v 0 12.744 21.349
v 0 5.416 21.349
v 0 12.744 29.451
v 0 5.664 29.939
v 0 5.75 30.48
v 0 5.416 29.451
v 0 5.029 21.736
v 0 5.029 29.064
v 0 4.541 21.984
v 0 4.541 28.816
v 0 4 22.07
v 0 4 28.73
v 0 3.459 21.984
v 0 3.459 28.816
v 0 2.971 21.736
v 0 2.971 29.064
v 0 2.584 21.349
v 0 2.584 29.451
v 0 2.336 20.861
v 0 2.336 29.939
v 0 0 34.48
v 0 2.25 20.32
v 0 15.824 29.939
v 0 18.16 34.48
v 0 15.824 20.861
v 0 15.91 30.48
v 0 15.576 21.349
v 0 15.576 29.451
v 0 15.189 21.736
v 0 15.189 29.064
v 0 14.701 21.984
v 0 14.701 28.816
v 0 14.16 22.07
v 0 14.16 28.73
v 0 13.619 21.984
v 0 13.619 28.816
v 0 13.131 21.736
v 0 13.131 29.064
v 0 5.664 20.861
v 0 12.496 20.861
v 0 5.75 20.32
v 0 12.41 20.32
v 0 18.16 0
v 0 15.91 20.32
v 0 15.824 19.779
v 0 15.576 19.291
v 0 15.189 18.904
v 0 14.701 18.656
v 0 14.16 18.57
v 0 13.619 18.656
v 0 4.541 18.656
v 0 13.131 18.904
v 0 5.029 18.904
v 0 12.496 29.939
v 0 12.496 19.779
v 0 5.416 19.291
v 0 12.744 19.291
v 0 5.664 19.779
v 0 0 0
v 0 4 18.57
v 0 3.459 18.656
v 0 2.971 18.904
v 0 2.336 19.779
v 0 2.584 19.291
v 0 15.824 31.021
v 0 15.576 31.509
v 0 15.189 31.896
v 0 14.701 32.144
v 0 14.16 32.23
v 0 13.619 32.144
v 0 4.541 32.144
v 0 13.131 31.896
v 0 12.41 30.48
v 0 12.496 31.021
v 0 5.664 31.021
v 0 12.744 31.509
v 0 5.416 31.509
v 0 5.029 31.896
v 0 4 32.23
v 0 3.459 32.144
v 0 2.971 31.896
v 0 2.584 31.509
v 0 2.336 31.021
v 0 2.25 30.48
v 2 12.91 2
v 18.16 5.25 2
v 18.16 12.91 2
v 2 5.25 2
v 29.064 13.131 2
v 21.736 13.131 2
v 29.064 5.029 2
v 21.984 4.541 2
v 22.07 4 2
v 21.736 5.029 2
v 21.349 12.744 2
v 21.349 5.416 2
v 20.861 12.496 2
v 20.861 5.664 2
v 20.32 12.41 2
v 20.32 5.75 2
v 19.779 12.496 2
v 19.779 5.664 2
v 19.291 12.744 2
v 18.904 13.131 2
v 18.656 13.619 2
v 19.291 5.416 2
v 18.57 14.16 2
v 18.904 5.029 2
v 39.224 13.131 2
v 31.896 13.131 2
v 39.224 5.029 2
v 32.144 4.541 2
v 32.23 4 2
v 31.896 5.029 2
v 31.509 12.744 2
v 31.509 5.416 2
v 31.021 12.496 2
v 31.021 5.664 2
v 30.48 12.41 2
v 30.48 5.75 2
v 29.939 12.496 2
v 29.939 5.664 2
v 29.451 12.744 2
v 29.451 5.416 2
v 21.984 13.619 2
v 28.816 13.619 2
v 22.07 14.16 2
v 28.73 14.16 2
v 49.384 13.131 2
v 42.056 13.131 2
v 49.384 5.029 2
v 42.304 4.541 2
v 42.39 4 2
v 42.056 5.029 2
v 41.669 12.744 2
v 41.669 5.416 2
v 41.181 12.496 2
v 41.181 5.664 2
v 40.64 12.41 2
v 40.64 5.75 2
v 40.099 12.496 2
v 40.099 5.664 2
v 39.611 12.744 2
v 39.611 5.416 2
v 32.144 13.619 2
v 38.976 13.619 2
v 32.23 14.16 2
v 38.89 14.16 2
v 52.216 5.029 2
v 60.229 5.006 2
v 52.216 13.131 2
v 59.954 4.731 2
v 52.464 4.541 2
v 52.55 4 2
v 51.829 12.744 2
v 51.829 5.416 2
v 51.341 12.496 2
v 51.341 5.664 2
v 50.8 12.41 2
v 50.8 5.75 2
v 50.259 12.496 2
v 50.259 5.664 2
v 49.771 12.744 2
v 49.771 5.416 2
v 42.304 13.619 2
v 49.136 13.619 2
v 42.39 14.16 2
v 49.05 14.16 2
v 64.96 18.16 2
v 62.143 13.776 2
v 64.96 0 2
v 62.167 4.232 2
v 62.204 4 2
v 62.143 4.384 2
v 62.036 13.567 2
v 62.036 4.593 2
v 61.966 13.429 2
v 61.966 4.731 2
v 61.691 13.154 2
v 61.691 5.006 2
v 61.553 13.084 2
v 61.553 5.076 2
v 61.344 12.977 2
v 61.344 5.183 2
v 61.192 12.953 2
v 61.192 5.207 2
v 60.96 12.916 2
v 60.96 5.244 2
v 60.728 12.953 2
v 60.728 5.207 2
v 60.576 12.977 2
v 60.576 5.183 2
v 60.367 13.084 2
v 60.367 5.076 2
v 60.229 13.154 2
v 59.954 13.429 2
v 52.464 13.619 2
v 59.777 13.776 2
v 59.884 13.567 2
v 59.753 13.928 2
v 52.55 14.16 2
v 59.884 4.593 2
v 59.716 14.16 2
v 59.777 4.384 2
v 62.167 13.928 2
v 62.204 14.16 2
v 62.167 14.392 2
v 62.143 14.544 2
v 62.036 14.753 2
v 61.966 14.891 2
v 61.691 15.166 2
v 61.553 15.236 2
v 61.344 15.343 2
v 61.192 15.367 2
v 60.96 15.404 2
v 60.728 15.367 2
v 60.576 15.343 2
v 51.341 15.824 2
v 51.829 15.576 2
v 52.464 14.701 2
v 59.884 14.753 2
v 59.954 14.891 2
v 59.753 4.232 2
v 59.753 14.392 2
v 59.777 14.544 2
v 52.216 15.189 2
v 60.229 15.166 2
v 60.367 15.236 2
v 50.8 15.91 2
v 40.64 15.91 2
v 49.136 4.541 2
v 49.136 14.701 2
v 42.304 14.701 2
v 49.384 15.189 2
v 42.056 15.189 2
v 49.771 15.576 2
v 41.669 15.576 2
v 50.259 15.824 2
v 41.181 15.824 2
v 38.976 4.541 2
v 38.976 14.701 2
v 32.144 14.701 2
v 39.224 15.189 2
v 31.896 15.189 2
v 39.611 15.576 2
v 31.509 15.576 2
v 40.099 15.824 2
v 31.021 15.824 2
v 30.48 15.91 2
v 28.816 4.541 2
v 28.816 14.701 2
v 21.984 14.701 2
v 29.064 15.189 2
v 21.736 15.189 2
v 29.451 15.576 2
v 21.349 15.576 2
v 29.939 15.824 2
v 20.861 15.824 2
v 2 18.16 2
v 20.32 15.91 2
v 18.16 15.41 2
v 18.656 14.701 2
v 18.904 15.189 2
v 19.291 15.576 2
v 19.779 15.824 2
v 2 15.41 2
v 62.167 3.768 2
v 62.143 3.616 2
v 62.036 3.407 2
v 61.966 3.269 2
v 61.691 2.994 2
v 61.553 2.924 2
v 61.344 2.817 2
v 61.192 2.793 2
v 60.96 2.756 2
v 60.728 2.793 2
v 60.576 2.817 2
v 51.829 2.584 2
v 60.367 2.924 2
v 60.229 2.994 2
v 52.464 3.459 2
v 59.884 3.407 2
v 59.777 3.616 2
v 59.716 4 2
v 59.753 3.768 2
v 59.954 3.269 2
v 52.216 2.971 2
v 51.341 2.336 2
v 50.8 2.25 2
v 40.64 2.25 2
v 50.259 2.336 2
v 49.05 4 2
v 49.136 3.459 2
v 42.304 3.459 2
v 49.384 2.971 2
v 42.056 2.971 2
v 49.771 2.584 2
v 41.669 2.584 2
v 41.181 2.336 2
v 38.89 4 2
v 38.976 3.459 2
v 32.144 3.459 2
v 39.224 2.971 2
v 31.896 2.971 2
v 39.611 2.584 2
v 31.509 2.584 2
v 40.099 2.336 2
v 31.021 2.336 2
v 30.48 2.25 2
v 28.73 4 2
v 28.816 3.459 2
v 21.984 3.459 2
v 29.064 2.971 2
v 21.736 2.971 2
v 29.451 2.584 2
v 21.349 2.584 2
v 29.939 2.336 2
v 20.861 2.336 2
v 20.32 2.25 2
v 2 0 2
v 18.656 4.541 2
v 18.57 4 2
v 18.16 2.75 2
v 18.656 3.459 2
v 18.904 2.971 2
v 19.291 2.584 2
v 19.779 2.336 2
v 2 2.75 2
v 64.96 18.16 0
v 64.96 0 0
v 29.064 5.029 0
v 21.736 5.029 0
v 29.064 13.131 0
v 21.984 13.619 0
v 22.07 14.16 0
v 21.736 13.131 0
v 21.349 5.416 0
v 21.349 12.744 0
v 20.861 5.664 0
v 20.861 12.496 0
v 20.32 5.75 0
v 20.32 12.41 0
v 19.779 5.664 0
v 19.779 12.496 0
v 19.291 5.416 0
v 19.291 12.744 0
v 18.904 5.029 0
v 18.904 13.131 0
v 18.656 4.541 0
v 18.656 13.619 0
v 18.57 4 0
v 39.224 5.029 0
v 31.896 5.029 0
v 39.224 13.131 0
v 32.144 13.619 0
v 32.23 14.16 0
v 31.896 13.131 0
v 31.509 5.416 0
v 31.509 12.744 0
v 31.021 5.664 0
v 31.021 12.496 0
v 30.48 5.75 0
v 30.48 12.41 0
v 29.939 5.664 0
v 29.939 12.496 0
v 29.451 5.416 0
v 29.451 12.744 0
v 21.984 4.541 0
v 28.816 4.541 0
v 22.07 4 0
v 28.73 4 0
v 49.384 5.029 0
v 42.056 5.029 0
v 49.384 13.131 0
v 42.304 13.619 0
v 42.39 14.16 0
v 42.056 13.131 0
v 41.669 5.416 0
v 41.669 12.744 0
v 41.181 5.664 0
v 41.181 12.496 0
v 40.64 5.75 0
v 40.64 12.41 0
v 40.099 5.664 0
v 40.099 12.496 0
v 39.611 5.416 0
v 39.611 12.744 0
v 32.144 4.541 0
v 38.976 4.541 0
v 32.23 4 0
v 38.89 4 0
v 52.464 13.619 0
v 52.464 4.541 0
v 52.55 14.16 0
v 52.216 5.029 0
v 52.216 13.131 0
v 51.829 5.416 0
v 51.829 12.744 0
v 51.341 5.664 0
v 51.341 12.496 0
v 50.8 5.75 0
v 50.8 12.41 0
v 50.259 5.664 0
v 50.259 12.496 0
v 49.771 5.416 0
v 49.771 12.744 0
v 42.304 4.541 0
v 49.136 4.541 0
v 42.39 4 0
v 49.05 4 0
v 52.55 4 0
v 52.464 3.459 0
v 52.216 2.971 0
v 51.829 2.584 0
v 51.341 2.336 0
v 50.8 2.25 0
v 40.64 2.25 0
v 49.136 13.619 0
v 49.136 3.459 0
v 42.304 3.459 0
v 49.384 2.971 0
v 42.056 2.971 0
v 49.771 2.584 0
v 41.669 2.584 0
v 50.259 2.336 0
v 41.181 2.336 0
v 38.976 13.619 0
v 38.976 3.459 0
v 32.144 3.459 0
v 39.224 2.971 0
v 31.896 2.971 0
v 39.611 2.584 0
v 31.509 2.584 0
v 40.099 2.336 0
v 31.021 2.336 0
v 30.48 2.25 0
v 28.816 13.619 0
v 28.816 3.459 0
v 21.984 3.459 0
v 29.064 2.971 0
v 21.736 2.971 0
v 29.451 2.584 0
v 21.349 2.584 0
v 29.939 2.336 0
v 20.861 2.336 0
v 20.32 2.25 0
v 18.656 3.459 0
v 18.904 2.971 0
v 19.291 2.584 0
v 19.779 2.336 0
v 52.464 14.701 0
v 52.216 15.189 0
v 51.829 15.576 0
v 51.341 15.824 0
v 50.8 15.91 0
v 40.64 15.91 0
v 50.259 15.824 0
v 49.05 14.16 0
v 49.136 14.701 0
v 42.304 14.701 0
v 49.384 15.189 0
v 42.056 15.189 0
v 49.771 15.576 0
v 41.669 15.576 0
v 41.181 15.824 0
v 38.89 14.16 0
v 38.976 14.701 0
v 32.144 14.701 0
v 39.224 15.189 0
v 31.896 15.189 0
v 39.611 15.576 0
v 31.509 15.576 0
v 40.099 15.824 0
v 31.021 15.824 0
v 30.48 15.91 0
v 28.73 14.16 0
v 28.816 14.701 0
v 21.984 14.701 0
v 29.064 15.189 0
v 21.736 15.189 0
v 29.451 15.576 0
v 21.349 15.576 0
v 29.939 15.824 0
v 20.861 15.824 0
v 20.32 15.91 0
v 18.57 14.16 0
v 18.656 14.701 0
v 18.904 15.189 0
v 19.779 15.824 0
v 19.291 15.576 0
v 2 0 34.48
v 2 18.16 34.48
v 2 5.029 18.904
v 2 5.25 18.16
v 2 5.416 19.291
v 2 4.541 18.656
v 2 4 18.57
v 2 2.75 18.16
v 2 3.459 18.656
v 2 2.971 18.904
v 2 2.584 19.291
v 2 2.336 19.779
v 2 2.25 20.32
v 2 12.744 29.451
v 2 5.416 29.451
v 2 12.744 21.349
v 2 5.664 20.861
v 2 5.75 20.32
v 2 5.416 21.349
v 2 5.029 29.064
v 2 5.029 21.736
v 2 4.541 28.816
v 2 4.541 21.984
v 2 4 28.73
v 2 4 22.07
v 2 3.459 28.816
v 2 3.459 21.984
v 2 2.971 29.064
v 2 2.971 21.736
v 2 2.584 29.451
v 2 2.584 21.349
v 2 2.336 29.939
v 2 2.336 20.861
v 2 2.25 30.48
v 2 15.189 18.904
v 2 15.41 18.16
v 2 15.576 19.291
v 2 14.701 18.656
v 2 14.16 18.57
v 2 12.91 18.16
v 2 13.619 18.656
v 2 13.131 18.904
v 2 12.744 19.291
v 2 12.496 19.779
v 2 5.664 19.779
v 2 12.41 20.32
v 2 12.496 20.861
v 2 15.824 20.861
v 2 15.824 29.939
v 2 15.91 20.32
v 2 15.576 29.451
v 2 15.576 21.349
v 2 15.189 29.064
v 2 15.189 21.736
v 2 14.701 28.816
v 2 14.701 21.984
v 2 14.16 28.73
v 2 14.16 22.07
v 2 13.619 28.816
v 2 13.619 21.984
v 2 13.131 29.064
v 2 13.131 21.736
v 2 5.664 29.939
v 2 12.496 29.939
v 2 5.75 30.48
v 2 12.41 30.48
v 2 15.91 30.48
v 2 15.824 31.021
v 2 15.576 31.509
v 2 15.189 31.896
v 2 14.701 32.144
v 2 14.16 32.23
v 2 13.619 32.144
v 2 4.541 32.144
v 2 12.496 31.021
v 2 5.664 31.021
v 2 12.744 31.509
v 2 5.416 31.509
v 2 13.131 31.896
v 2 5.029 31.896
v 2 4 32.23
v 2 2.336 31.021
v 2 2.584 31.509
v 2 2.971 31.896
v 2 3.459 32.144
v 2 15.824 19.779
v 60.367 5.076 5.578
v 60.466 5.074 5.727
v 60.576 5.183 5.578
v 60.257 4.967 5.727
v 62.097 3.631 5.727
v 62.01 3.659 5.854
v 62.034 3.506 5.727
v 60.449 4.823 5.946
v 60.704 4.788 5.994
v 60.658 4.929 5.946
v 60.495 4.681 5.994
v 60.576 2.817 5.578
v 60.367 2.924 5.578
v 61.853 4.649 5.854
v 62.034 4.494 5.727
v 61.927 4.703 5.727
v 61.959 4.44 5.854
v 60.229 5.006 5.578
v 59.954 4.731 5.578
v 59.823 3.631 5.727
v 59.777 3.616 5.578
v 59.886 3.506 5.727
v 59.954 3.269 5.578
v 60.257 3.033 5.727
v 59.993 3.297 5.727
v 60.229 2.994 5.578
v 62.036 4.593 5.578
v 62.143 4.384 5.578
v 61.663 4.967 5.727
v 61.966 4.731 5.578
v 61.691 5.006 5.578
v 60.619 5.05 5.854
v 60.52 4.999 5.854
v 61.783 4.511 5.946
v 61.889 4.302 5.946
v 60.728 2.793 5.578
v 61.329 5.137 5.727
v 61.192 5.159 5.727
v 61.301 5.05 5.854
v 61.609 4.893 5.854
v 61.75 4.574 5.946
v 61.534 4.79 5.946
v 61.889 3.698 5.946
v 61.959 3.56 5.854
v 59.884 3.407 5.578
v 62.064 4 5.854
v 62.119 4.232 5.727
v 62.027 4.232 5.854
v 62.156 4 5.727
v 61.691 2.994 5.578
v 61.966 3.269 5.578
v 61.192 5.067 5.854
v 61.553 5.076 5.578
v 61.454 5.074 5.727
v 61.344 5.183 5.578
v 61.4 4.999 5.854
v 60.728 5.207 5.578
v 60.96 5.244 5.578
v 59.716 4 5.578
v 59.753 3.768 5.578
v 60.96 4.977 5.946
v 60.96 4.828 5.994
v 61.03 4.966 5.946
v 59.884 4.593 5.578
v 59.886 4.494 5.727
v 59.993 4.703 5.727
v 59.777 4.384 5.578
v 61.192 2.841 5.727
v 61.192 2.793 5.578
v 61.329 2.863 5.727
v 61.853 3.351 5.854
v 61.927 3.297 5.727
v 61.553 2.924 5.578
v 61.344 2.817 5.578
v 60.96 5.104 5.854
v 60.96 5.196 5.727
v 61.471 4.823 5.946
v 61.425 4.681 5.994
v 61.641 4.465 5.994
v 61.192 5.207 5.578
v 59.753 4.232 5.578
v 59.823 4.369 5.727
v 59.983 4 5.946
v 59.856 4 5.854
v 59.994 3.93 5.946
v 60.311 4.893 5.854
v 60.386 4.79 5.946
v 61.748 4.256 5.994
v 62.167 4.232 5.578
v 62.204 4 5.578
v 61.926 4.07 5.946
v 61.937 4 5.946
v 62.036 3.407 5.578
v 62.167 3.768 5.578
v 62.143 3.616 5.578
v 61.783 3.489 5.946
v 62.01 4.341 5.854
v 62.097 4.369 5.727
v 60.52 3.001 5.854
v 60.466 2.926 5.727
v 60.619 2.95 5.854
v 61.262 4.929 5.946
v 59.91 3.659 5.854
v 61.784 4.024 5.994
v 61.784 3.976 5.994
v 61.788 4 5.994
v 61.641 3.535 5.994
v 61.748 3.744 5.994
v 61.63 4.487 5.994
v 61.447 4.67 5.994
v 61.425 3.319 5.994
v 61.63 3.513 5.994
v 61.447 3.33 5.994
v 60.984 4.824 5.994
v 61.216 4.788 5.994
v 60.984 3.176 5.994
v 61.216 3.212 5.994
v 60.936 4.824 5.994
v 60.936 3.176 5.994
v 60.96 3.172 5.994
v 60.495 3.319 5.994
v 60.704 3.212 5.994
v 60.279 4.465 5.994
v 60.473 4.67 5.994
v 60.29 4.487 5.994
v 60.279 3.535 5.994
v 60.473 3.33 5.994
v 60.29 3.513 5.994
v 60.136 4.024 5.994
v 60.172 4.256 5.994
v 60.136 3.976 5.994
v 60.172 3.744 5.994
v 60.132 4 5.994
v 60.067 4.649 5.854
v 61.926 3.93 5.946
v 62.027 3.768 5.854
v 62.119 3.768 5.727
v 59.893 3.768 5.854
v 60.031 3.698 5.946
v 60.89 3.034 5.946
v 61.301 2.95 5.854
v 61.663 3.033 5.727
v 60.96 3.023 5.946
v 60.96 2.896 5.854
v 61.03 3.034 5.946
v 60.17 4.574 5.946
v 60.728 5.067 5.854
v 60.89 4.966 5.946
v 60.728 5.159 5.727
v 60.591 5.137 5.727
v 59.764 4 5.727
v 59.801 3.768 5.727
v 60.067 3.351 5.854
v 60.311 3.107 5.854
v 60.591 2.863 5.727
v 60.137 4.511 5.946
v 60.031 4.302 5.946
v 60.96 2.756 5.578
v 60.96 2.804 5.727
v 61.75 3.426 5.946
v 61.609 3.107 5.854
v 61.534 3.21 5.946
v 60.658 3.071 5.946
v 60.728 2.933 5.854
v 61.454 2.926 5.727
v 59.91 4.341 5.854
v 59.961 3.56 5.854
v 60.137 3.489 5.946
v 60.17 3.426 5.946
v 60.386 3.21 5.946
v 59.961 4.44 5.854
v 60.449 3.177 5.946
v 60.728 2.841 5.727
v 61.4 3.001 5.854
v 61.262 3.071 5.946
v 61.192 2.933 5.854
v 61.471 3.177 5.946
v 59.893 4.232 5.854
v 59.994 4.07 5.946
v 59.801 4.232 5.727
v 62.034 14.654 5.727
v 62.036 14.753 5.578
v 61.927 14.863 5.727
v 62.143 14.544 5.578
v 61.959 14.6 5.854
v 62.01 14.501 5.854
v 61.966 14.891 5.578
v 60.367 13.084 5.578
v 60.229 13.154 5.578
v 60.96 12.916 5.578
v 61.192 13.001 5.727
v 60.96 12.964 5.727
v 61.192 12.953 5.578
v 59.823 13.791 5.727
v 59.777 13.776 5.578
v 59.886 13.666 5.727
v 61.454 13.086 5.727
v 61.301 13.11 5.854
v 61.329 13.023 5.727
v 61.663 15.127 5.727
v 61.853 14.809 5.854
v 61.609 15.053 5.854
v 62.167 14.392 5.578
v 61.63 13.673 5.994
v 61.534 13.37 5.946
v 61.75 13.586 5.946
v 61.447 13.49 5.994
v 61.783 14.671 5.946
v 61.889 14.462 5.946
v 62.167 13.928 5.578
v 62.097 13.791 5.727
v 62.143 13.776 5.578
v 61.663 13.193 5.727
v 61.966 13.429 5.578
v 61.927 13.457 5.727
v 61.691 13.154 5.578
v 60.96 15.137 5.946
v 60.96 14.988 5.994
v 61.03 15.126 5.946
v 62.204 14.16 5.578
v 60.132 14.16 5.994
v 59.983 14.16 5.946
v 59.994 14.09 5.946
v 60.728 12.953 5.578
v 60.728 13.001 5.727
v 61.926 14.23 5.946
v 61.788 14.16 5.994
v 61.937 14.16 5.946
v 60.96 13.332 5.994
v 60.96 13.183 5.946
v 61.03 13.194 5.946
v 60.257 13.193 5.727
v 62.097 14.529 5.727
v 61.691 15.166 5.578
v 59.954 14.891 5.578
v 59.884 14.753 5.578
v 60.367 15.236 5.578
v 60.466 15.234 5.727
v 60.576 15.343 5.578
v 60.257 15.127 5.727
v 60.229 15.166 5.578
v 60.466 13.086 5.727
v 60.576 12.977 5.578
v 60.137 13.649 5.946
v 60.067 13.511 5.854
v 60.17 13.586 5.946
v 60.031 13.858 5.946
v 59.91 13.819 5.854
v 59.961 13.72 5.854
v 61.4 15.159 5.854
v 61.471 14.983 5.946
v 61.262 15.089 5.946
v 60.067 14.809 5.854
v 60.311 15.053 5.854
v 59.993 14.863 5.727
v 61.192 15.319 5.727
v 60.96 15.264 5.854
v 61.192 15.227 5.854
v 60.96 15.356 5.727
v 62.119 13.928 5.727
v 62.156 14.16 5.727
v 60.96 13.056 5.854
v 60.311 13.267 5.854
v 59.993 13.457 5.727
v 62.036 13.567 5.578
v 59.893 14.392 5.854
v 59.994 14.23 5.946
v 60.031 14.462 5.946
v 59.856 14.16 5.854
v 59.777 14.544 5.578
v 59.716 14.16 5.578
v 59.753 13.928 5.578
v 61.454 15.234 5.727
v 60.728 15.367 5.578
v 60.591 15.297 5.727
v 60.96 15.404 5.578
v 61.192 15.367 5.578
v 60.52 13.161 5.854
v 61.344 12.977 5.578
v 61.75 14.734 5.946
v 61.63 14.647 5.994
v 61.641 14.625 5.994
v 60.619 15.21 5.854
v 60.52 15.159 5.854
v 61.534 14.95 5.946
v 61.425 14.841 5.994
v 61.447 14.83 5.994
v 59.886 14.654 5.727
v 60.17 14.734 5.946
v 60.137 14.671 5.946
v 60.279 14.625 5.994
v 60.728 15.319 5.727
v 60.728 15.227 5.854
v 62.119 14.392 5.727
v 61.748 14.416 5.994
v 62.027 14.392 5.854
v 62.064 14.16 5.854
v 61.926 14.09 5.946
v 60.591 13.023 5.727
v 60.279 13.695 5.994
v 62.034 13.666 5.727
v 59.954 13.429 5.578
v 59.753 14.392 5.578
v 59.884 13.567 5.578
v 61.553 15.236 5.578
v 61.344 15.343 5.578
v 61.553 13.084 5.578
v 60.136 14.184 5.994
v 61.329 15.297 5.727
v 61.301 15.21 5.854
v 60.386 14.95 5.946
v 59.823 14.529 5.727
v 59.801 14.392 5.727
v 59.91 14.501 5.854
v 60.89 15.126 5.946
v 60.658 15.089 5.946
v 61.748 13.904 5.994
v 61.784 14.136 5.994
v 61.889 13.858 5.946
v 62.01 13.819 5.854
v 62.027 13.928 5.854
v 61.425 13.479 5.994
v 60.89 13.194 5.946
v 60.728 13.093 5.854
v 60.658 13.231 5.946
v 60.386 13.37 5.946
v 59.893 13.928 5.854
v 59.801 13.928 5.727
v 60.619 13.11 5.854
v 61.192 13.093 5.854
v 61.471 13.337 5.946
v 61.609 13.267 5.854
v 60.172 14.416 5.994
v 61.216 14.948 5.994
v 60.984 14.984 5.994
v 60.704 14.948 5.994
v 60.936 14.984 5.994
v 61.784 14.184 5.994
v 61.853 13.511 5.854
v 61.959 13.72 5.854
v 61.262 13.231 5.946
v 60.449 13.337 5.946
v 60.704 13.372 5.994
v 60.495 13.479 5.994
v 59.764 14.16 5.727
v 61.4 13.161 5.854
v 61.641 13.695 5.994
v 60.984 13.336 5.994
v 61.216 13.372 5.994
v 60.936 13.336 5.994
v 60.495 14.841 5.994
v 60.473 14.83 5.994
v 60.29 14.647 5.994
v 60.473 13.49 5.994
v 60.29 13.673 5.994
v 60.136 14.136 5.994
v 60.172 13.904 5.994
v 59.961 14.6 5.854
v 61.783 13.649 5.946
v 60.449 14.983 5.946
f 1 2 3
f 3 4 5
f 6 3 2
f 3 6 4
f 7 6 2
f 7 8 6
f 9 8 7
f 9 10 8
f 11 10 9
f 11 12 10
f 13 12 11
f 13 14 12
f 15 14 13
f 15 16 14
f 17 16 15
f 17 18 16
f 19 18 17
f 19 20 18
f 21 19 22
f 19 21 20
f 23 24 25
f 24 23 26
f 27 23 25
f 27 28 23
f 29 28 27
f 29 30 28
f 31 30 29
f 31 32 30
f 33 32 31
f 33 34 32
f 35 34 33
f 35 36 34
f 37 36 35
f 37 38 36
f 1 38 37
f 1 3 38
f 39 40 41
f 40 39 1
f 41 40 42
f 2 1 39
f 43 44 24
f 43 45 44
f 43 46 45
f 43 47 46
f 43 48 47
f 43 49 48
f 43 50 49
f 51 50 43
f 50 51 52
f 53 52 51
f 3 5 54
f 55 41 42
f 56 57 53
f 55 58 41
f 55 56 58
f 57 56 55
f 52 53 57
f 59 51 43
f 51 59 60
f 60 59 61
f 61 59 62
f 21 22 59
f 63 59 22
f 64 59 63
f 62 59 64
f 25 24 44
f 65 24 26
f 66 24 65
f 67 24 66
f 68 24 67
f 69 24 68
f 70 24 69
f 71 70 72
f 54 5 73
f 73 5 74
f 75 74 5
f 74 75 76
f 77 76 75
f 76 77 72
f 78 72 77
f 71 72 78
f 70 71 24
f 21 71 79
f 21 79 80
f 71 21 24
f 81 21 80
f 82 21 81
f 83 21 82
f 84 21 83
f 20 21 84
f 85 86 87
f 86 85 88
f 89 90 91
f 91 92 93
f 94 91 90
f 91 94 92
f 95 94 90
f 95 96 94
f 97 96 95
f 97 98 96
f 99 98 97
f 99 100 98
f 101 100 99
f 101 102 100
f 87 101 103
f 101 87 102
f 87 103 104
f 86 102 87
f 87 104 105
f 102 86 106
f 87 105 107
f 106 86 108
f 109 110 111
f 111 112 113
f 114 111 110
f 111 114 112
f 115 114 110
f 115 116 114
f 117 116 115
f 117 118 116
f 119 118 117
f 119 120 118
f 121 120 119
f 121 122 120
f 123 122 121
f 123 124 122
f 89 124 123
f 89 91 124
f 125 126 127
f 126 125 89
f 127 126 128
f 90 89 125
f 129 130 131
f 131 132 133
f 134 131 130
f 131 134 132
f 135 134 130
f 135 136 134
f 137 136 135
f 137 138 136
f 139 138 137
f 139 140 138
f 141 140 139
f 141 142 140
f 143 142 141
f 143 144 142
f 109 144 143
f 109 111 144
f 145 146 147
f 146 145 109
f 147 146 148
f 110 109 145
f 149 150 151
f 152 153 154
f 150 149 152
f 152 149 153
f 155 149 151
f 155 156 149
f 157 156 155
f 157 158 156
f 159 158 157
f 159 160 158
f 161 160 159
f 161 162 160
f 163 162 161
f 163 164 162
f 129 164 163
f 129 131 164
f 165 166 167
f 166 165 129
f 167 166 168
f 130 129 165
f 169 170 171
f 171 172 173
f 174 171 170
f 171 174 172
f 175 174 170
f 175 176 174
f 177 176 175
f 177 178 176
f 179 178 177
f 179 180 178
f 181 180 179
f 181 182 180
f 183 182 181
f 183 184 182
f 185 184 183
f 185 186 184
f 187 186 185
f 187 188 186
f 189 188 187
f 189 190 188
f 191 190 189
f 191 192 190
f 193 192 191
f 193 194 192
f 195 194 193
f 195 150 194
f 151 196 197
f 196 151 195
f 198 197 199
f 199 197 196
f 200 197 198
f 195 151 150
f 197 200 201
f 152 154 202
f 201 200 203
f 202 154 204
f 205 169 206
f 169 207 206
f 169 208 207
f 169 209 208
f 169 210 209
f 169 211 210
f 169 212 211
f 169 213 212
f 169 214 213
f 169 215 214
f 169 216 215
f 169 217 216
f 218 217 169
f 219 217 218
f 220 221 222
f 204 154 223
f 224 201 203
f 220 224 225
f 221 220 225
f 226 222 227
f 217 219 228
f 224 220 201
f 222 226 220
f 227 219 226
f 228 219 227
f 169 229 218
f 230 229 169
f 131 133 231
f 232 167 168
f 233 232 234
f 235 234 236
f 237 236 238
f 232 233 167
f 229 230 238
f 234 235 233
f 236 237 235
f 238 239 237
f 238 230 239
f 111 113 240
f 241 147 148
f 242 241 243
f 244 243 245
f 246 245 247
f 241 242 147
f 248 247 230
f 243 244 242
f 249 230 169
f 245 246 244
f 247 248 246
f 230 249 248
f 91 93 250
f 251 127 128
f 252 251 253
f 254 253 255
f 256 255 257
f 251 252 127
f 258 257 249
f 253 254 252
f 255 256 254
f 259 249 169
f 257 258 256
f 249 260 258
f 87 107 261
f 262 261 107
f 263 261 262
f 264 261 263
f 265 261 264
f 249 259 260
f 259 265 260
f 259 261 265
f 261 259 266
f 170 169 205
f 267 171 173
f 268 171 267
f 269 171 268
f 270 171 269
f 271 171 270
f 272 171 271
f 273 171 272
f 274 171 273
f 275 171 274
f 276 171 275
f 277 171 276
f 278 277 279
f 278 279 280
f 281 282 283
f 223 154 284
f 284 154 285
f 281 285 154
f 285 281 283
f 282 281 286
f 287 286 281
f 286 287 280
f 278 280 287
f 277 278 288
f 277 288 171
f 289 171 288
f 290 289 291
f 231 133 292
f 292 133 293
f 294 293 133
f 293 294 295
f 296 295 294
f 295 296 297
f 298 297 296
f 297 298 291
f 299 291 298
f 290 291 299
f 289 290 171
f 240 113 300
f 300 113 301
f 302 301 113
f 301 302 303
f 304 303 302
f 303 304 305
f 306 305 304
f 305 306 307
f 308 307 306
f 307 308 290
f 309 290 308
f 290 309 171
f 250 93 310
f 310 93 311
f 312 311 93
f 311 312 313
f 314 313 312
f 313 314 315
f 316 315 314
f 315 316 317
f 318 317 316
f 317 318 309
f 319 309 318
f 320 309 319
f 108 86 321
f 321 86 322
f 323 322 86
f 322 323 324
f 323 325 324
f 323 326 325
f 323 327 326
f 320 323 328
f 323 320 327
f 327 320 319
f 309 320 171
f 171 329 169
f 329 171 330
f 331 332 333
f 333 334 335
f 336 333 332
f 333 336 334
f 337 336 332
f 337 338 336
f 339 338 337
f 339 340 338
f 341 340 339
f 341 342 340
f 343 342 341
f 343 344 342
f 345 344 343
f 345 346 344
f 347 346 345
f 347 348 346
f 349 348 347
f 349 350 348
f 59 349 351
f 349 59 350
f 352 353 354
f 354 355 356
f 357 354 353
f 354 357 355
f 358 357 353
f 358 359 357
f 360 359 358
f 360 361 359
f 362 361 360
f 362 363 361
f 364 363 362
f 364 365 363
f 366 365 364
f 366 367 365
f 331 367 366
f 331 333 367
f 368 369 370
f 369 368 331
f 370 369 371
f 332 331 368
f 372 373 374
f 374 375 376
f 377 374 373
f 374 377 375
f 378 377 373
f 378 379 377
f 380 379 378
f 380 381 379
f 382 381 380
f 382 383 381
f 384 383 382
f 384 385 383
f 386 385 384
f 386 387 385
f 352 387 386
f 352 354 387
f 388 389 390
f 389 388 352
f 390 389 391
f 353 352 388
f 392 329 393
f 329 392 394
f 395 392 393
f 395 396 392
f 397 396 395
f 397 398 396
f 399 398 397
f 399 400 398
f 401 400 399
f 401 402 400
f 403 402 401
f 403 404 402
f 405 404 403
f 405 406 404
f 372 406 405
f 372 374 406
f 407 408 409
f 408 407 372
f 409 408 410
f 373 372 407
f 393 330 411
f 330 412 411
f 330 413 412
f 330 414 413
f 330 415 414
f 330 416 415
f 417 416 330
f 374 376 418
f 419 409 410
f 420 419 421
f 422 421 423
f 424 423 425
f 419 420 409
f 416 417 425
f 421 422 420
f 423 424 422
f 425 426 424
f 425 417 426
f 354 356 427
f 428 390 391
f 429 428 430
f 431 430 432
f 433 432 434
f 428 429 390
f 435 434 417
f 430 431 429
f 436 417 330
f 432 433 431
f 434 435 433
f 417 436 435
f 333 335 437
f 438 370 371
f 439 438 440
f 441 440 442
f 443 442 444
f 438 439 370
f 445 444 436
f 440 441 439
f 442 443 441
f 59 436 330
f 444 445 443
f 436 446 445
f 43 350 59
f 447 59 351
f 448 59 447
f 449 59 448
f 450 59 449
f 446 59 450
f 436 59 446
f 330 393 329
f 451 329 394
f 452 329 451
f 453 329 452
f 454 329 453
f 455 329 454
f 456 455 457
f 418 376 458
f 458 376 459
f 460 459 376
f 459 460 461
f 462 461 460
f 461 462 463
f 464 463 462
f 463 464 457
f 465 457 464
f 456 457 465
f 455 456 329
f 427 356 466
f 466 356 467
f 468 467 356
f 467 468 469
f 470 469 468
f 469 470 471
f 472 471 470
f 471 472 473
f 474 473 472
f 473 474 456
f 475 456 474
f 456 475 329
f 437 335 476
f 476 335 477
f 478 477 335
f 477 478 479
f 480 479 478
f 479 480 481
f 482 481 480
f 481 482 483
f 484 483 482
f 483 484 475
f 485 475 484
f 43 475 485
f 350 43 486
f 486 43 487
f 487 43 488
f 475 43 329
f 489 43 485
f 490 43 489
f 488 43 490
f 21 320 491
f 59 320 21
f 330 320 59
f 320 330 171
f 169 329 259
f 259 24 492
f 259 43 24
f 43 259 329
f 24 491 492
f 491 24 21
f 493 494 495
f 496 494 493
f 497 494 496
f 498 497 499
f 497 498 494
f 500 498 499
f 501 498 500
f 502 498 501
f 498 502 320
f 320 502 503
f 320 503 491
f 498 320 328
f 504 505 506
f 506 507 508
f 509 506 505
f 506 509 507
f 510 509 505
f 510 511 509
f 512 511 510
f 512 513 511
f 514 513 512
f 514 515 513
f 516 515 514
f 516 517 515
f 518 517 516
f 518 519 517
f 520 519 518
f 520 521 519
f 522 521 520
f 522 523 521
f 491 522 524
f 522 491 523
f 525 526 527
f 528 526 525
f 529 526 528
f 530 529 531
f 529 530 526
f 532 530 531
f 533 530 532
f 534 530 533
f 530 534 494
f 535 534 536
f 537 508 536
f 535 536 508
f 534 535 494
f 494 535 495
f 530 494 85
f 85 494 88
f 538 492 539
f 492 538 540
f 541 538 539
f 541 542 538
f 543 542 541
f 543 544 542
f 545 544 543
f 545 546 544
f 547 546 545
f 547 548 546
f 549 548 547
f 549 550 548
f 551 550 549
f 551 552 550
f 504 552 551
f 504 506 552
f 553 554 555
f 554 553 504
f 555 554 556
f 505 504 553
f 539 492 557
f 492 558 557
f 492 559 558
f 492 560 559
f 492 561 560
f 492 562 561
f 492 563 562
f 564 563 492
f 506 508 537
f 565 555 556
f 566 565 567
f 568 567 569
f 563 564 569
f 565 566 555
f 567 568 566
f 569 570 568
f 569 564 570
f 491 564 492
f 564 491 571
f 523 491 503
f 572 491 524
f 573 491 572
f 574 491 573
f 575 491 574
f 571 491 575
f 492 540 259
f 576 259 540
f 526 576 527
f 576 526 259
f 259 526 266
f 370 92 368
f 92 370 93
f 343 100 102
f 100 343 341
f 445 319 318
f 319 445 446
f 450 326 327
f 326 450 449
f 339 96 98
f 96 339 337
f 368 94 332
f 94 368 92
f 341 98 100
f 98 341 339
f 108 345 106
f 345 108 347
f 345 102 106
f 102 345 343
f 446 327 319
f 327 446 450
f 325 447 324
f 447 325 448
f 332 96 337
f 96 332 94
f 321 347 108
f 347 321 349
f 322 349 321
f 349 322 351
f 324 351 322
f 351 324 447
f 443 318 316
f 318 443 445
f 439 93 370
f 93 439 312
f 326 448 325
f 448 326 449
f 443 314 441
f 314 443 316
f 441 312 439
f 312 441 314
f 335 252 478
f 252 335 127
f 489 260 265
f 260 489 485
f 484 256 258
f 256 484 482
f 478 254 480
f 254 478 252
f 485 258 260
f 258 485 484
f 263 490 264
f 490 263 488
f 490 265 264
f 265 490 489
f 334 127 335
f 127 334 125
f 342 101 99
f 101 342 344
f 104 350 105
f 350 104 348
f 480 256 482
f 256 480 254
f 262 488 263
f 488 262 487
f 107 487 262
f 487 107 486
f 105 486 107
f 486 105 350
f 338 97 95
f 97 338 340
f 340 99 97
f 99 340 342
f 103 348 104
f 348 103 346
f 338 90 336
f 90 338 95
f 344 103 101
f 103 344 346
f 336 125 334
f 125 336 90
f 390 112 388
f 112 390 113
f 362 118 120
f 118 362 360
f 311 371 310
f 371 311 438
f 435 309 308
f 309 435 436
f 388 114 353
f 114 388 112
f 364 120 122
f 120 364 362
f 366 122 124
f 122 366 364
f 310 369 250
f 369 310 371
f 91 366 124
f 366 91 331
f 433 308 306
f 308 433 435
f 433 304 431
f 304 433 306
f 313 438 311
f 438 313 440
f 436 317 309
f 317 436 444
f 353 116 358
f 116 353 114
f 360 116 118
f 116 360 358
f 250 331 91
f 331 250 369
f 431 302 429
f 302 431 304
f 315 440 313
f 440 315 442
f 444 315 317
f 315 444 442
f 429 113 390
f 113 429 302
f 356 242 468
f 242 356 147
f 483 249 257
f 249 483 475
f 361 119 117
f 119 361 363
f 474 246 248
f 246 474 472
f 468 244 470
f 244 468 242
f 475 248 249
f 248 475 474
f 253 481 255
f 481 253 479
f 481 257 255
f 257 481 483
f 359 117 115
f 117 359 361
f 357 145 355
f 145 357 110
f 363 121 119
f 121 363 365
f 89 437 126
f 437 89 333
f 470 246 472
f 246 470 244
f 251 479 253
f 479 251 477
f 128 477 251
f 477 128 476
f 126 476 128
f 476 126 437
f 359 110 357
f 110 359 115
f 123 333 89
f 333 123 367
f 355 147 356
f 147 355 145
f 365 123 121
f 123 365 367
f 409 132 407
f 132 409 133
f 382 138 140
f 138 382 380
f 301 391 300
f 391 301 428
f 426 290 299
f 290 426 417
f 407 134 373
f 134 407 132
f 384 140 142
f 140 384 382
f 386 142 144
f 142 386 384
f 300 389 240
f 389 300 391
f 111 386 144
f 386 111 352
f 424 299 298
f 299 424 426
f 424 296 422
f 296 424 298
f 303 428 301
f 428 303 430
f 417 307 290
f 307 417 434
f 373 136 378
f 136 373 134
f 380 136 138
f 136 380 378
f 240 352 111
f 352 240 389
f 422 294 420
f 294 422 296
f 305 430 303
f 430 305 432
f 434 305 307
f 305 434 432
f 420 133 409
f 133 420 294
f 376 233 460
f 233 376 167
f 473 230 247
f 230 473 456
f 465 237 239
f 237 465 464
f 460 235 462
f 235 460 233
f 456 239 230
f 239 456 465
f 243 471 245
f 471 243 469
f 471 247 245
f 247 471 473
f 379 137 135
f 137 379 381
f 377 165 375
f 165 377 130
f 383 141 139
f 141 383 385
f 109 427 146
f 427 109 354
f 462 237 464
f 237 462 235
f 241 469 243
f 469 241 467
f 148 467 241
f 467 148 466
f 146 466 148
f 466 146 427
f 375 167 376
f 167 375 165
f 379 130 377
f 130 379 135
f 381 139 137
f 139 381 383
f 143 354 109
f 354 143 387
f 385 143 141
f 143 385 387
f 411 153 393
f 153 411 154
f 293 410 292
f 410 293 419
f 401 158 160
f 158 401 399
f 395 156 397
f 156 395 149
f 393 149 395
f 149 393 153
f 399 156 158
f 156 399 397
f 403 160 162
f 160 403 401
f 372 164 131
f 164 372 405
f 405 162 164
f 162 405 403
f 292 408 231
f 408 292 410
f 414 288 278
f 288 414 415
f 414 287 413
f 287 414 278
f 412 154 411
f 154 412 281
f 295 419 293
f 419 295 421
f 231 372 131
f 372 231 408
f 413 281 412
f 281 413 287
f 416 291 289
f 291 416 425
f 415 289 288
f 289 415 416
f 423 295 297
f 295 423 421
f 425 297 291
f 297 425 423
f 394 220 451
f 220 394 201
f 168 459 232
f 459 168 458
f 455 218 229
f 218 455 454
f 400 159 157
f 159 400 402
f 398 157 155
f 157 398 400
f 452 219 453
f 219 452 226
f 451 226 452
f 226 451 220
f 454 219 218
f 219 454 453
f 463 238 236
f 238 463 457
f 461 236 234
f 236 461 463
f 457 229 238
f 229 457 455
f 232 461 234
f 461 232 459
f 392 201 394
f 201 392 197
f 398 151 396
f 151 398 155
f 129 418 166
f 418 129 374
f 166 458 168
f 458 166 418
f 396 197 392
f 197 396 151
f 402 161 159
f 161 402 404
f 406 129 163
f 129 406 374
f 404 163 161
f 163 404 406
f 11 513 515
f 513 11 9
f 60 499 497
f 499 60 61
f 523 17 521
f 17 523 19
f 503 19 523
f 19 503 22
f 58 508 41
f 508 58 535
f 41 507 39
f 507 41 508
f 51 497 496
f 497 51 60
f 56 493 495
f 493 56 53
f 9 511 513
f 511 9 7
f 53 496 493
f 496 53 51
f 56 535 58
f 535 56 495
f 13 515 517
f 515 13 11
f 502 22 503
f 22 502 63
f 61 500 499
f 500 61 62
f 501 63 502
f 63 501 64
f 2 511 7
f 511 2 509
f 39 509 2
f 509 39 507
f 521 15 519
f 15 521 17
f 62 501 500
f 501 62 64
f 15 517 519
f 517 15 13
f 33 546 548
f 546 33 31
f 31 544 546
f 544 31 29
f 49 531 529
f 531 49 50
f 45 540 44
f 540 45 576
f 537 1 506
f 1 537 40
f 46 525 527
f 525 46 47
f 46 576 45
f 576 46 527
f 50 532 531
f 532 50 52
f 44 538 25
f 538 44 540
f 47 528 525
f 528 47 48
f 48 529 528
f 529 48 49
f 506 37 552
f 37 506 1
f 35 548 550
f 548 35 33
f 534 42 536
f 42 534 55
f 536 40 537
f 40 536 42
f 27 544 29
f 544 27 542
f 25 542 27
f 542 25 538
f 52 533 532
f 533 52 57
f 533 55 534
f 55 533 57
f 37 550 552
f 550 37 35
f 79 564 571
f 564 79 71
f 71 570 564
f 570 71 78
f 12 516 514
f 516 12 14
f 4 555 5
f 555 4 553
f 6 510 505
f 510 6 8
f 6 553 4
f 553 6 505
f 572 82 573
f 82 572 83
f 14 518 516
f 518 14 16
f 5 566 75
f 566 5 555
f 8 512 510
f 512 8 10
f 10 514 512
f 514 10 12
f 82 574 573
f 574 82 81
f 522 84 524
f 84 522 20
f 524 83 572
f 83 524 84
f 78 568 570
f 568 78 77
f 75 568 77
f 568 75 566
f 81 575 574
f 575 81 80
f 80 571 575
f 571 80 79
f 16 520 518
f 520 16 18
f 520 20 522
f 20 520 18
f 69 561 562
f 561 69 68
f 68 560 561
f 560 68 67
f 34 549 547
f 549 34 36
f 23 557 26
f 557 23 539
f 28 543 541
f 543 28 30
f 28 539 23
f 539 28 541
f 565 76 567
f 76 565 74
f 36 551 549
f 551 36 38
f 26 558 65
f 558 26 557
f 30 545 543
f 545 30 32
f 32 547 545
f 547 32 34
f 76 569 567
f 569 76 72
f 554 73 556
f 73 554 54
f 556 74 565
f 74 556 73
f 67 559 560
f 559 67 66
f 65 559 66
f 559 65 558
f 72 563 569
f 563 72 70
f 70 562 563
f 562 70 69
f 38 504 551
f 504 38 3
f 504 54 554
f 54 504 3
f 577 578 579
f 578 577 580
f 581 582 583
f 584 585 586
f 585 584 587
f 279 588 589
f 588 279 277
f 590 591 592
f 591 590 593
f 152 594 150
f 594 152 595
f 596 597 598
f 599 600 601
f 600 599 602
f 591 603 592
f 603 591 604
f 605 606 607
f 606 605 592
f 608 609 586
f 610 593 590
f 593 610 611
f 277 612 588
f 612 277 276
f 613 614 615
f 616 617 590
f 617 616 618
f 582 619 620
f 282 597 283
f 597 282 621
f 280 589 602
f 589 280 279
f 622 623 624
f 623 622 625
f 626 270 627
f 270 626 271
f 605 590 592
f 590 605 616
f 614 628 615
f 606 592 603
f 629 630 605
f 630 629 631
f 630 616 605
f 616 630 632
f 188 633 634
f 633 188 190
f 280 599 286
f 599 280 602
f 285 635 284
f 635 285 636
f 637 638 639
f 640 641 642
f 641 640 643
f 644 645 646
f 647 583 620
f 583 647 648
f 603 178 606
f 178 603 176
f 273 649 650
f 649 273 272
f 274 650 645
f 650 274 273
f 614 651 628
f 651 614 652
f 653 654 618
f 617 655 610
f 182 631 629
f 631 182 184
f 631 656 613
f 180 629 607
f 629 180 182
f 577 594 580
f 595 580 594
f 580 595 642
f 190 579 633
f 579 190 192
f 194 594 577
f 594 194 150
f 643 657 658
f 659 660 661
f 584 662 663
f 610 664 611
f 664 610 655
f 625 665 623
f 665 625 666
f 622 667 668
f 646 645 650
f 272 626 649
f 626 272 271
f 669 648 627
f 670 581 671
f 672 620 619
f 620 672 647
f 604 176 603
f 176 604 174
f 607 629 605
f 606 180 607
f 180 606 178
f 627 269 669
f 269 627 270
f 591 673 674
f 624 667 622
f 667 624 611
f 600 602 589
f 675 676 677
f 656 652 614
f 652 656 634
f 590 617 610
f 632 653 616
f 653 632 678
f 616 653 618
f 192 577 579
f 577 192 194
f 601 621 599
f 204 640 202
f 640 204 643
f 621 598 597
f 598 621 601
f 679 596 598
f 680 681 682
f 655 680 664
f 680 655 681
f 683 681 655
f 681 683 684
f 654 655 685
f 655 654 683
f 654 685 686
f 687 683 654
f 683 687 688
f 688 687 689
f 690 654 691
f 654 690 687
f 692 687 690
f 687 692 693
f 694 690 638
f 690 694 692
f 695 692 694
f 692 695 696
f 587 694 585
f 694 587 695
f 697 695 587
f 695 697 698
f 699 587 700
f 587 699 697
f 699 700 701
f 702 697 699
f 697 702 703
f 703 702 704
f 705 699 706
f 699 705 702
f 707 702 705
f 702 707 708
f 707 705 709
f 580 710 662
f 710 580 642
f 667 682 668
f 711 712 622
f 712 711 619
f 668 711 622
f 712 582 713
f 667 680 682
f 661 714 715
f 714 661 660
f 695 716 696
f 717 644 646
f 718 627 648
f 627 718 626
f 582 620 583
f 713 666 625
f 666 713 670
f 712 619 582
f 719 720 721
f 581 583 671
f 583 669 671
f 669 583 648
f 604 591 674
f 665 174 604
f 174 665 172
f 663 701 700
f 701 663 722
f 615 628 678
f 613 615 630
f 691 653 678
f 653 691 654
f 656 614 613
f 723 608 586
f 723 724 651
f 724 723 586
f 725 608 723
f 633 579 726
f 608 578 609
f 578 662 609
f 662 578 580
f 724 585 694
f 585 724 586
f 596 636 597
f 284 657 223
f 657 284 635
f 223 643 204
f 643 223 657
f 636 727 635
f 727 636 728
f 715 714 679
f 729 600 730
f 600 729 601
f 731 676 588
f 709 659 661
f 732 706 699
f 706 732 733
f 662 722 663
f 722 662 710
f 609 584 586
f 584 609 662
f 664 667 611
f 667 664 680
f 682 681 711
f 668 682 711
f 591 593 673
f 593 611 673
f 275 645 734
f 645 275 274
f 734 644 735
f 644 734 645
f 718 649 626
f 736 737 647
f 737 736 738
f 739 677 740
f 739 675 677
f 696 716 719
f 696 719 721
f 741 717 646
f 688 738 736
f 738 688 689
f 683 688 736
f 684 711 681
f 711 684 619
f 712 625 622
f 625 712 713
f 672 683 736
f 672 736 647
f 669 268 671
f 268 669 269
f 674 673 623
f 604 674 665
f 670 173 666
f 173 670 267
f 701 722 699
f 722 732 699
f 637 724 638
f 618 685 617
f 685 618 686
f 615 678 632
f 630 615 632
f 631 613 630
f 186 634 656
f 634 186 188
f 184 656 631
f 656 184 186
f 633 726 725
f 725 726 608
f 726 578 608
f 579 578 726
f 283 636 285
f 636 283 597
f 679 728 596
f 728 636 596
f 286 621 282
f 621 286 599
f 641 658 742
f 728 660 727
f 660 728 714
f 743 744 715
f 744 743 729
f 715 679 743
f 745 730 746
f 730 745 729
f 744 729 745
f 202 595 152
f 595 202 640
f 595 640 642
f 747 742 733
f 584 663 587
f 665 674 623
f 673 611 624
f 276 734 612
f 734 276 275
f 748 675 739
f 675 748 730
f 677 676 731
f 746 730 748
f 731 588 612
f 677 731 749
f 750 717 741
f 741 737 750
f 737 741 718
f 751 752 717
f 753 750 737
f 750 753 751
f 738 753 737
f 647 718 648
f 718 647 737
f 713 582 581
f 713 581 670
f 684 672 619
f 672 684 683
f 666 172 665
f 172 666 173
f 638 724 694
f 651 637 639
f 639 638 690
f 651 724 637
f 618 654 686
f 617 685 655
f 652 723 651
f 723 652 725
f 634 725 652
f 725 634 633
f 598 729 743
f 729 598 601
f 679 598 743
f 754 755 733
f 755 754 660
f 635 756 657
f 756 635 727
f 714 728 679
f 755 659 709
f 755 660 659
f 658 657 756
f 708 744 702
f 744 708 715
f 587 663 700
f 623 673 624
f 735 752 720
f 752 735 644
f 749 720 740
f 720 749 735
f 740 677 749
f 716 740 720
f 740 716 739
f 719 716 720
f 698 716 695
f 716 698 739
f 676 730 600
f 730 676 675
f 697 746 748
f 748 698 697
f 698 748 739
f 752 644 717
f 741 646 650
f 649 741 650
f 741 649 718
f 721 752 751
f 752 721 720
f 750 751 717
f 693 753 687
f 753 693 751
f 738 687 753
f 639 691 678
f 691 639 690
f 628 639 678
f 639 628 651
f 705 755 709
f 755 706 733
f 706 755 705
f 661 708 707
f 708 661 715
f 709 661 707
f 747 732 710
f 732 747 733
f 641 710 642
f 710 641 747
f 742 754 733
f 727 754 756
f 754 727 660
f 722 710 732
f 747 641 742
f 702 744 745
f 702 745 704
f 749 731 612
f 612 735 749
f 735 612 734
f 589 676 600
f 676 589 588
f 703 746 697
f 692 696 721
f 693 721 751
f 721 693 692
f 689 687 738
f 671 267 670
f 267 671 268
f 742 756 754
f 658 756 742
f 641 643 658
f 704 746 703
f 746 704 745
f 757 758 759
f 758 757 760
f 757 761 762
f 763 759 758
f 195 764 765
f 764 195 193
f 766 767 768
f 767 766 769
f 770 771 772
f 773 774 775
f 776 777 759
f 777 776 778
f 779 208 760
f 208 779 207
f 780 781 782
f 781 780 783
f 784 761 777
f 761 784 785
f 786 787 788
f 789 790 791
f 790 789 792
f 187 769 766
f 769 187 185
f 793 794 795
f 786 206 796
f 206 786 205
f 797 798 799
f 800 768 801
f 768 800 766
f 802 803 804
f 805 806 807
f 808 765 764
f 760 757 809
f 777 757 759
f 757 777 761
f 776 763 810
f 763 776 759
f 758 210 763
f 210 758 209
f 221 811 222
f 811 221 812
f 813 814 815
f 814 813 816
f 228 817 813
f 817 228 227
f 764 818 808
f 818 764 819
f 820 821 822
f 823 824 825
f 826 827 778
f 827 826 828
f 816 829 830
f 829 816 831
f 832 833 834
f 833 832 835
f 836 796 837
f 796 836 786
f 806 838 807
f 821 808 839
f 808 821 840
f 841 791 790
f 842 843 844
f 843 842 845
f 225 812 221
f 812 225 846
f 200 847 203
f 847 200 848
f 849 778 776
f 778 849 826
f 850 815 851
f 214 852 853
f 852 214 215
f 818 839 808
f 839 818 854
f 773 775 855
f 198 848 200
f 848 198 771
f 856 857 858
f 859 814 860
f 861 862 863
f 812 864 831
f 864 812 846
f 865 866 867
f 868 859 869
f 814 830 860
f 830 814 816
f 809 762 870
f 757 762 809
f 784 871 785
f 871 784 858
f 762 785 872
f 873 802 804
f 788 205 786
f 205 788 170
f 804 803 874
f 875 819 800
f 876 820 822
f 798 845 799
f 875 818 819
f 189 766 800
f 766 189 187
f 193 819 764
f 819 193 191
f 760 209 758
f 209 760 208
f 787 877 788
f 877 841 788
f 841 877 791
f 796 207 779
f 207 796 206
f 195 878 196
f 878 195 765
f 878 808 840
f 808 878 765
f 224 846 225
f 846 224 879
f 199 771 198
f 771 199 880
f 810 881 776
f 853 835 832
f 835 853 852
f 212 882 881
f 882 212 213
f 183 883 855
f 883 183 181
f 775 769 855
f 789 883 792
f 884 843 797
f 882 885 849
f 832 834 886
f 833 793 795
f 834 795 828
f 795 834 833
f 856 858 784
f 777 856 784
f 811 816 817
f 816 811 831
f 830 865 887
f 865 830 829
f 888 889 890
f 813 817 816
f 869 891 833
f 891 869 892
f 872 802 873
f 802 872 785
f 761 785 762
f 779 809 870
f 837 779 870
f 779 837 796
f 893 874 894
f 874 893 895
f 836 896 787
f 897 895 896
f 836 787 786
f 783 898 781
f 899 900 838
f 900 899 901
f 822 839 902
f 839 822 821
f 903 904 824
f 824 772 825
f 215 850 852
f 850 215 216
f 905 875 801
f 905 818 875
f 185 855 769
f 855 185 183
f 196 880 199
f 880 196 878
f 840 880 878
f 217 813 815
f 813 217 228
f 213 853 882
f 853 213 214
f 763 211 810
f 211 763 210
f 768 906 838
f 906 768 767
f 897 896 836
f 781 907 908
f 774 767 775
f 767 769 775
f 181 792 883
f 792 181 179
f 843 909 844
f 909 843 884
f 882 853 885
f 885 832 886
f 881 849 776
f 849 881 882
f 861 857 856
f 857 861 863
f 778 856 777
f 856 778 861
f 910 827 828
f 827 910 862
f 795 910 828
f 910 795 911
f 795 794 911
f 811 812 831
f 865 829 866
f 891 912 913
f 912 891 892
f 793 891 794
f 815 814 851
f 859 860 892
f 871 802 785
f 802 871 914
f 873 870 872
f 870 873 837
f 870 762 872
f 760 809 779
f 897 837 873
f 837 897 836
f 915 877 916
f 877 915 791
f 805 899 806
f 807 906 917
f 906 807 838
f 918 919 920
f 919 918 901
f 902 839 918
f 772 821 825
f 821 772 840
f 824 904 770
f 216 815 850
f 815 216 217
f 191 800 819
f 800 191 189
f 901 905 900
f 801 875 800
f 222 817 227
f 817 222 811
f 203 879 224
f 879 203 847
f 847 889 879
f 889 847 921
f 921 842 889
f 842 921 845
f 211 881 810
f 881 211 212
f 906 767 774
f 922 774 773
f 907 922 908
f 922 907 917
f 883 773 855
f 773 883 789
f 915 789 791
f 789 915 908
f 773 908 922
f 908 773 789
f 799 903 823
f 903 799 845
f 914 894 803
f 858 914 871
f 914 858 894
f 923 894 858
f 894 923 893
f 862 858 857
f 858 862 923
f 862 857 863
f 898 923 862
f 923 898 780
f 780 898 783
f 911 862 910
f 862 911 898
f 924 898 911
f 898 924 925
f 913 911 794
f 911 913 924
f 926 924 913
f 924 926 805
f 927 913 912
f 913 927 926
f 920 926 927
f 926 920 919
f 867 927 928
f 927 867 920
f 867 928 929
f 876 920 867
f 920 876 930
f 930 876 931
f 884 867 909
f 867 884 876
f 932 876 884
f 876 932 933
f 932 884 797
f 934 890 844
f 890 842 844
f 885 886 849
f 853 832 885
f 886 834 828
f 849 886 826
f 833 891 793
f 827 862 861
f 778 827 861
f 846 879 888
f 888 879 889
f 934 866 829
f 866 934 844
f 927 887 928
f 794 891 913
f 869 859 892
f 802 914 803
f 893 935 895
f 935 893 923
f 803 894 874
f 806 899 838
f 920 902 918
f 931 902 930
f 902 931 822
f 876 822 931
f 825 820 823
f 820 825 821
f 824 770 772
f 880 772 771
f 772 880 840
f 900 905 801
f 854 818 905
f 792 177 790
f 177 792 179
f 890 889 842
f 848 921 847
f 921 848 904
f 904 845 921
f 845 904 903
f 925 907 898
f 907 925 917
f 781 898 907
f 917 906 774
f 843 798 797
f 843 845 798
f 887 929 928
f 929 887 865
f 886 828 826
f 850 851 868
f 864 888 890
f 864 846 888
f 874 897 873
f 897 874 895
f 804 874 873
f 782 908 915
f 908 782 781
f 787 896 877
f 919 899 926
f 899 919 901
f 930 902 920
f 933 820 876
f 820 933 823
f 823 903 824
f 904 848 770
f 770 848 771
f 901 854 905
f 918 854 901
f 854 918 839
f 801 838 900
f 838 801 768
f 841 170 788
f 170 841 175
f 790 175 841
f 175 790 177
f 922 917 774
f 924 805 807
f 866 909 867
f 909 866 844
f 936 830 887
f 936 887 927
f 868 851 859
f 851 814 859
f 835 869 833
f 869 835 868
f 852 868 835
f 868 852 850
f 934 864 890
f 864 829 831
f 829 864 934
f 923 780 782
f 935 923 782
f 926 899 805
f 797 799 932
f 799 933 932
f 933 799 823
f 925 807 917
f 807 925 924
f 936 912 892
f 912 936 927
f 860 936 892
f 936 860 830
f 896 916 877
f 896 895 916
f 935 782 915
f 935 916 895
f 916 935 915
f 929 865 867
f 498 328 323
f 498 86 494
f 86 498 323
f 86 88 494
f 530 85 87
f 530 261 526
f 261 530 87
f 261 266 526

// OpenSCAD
h = 5;      // Výška sloupků

a = 3;       // Výška  (počet  dírek)
b = 7;      // Délka (počet dírek)
d = 2.5;     // Průměr trnů (>1)
c = 2;   // Tloušťka stěn

mount_hole = 3.5;

drat = 1.5;  // Průměr/výška otvoru na dráty

okraj = 2;  // šířka horního okraje

MLAB_grid = 10.16;
pedestal_height = 2; 

ot = MLAB_grid;         //Vzdálenost okraje od děr v plošňáku pro stranu s tunelem
o = 4;   //Vzdálenost zbylých okrajů od děr v plošňáku



$fn=20;

roh =0.5; // Zaoblení hran

// Kvádr a válec se zaoblenými hranami
module roundcube(size,center=true,corner) {
  minkowski() {
    cube(size,center);
    sphere(corner);
  }
}

module roundcylinder(size, r, center=true, corner) {
  minkowski() {
    cylinder(size, r, r, center);
    sphere(corner);
  }
}





difference(){
   union(){ cube([(b-1)*MLAB_grid+o,2*o+MLAB_grid,c]);
    cube([c,2*o+MLAB_grid,o+a*MLAB_grid]);}

     union() {
    // MLAB grid holes
    grid_list1 = [for (j = [ 2*MLAB_grid : MLAB_grid: MLAB_grid*5], i = [o :MLAB_grid: MLAB_grid*2]) [j, i] ];
    for (j = grid_list1) {
            translate (concat(j, [1]))
            cylinder (h = 2*c, r= mount_hole/2, center = true);
    }
  grid_list2 = [for (k = [ 2*MLAB_grid : MLAB_grid: MLAB_grid*5], l = [o :MLAB_grid: MLAB_grid*2]) [k, l] ];
    for (k = grid_list2) {
            rotate([0,-90,0])
            translate (concat(k, [-1]))
            cylinder (h = 2*c, r= mount_hole/2, center = true);
    }
    }
    
}  
translate([(b-1)*MLAB_grid, o, h/2 + roh])
roundcylinder(h, r=d/2-roh, center = true, corner=roh);

translate([(b-1)*MLAB_grid, o+MLAB_grid, h/2 + roh])
roundcylinder(h, r=d/2-roh, center = true, corner=roh);

/*translate([(b-2)*MLAB_grid, o, h/2 + roh])
roundcylinder(h, r=d/2-roh, center = true, corner=roh);

translate([(b-2)*MLAB_grid, o+MLAB_grid, h/2 + roh])
roundcylinder(h, r=d/2-roh, center = true, corner=roh); */

// Příčky    
 
     hull() {
       
      translate([0, o-d/2, 0]) 
        cube([MLAB_grid + 2*o, d, 2]);
         
      translate([0, o-d/2, 0]) 
        cube([2, d , MLAB_grid + 2*o]);
     }
     hull() {
     
       translate([0, o+MLAB_grid-d/2, 0]) 
        cube([MLAB_grid + 2*o, d, 2]);
         
      translate([0, o+MLAB_grid-d/2, 0]) 
        cube([2, d, MLAB_grid + 2*o]);
    }             
    
    
 
